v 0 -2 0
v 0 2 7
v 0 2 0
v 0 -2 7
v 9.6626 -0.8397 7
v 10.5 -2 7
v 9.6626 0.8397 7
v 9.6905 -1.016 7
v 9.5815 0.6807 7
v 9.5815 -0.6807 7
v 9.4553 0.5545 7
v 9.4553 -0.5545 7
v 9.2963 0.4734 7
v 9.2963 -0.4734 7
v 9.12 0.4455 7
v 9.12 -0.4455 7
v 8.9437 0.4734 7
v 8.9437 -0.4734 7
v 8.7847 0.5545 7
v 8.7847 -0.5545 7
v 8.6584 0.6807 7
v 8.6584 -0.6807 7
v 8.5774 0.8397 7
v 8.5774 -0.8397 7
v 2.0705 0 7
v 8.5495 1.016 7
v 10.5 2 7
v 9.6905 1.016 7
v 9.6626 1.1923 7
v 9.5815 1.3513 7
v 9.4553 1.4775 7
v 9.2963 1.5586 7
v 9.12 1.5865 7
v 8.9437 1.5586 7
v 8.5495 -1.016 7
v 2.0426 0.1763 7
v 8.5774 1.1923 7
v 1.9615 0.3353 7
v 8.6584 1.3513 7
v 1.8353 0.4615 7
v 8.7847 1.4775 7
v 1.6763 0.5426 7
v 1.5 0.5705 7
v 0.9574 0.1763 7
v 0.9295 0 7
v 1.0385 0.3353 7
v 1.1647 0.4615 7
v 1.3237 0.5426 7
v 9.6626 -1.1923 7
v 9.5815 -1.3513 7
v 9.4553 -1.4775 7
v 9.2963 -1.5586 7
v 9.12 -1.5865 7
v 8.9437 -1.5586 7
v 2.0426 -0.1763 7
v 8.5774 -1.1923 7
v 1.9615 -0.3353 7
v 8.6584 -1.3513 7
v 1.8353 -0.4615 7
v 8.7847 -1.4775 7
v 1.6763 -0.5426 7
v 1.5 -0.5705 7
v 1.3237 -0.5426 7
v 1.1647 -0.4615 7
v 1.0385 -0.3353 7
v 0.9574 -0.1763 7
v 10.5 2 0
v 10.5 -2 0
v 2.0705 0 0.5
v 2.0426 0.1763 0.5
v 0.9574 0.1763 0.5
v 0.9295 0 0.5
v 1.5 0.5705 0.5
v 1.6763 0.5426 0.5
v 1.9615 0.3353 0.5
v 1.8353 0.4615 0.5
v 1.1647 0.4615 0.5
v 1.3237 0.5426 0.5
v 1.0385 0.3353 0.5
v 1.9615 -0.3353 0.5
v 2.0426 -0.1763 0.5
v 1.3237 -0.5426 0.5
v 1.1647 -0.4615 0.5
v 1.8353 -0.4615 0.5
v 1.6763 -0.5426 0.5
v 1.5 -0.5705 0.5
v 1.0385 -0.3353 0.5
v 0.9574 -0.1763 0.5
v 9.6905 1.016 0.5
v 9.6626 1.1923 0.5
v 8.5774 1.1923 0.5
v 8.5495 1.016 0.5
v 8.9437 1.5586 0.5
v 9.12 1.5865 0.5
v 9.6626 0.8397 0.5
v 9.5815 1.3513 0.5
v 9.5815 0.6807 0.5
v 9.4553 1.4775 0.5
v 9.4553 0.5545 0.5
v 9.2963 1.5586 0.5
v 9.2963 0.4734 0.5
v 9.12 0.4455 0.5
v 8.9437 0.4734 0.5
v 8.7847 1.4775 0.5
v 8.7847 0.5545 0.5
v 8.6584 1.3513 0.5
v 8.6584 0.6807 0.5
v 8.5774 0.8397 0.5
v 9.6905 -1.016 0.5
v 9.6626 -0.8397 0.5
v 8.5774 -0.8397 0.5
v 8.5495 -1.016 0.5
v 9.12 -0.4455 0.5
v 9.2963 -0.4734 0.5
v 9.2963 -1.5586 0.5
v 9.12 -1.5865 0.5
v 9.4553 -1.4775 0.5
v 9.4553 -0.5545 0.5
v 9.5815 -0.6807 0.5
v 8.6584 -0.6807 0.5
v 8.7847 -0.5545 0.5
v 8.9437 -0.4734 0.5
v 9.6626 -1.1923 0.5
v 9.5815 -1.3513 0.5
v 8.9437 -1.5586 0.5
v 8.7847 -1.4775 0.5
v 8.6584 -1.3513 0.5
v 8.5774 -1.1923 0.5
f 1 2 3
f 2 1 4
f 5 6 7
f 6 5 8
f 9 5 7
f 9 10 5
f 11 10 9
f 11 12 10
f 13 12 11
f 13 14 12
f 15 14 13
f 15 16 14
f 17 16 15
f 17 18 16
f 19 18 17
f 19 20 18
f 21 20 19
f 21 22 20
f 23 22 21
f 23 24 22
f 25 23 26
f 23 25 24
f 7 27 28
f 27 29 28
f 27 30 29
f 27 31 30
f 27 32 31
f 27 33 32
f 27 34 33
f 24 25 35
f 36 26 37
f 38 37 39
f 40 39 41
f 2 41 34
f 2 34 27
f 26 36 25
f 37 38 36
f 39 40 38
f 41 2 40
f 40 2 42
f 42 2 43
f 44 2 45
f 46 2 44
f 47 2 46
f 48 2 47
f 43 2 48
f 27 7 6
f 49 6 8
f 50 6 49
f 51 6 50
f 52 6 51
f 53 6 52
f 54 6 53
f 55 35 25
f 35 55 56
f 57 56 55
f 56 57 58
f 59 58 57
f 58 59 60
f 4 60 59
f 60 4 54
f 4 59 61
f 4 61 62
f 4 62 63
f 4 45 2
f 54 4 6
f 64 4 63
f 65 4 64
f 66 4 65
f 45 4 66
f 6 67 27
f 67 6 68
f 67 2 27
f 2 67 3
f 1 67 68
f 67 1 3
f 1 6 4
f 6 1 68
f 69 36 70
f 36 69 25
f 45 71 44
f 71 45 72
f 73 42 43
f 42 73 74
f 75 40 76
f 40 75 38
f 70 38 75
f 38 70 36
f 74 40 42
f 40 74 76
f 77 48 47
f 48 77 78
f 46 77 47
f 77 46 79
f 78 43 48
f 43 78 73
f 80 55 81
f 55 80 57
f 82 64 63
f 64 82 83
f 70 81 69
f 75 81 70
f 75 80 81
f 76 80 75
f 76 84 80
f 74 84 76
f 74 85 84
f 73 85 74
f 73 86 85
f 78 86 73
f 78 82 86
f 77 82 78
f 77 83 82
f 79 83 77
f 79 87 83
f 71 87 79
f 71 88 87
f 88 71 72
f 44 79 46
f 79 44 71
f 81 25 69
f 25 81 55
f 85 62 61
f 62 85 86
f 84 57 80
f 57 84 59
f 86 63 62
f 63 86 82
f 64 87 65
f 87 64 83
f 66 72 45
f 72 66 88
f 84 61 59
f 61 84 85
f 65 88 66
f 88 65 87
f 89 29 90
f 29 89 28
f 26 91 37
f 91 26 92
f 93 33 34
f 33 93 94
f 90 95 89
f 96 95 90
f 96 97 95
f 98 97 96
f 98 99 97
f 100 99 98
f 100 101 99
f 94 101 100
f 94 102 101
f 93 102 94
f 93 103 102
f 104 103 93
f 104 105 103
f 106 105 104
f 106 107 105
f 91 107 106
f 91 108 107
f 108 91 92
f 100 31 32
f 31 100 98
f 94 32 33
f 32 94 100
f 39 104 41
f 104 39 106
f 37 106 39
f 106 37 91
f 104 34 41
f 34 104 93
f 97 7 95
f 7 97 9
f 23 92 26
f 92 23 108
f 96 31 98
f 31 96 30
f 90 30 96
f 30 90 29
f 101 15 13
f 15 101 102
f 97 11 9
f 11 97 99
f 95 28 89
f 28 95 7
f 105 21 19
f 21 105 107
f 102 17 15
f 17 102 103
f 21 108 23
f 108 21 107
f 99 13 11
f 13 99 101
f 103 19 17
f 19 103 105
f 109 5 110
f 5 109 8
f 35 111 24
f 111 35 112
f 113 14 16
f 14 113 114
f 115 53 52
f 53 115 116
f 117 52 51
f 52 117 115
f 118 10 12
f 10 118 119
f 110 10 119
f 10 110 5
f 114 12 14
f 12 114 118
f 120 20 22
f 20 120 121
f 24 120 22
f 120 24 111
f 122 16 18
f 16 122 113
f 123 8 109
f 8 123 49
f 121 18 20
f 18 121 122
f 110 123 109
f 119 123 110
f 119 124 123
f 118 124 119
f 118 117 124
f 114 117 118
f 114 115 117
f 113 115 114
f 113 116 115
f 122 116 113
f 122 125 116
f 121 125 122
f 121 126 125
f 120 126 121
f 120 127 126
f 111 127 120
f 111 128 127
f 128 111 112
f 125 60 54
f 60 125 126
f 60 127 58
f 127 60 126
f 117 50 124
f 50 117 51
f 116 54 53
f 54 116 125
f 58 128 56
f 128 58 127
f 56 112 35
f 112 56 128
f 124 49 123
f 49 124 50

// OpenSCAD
$fn=20;

isx = 1.5;       // Inital Spacing X

a_dia_tol = 0.15;  // Alignment Hole Tolerance
p_dia_tol = 0.01; // Probe Hole Tolerance

align_pin_dia = 0.991+a_dia_tol; // Alignment Pin Diamenter
probe_pin_dia = 0.787+p_dia_tol; // Probe Pin Diameter

/* Probe Clip Dimention */
boxx = 10.5;
boxy = 4;
boxh = 7;
his = 0.5; // Alignment/Probe hole offset height spacing

/* Probe Pair Spacing */
pps = 1.270;// mm probe pair spacing
pys = 0.635; // Probe spacing from x axis along y axis

/* Align Hole Calc */
ap1xs   = isx;        // Align pin 1 x spacing
ap2a3xs = ap1xs+pps*6; // Align pin 2&3 x spacing
ap2a3ys = 1.016;

/* Probe Shield */
// http://www.tag-connect.com/Materials/TC2030-IDC.pdf
pss = ap1xs + pps - (probe_pin_dia/2);
psx = pps*2 + probe_pin_dia;
psy = 1.016*2;

/* Probe Pair Space Calc */
pp1s = ap1xs + pps*1; // mm spacing 
pp2s = ap1xs + pps*2; // mm spacing 
pp3s = ap1xs + pps*3; // mm spacing 
pp4s = ap1xs + pps*4; // mm spacing 
pp5s = ap1xs + pps*5; // mm spacing 
probe_pit_y = pys*2 + probe_pin_dia; // 

/* loop */
loop_length = 50;
loop_height = 0.4;
loop_width = boxy;
loop_hole_w = 2.5; // hole width
loop_hole_l = 30;
loop_hole_s = 2;

loop_loy = loop_hole_w + 2*loop_hole_s;

/* 3D Model */
difference() {
translate([0  , -boxy/2  , 0])
        /* Main Plug */
        cube([boxx,boxy,boxh]);

/* Align Hole */
#translate([ap1xs   , 0         , his])
    cylinder(r=align_pin_dia/2, h=boxh);
#translate([ap2a3xs , +ap2a3ys  , his])
    cylinder(r=align_pin_dia/2, h=boxh);
#translate([ap2a3xs , -ap2a3ys  , his])
    cylinder(r=align_pin_dia/2, h=boxh);

/* Probe Pair 1 */
%translate([pp1s, +pys  , his])
    cylinder(r=probe_pin_dia/2, h=boxh);
%translate([pp1s, -pys  , his])
    cylinder(r=probe_pin_dia/2, h=boxh);
/* Probe Pair 2 */
%translate([pp2s, +pys  , his])
    cylinder(r=probe_pin_dia/2, h=boxh);
%translate([pp2s, -pys  , his])
    cylinder(r=probe_pin_dia/2, h=boxh);
/* Probe Pair 3 */
%translate([pp3s, +pys  , his])
    cylinder(r=probe_pin_dia/2, h=boxh);
%translate([pp3s, -pys  , his])
    cylinder(r=probe_pin_dia/2, h=boxh);
/* Probe Pair 4 */
%translate([pp4s, +pys  , his])
    cylinder(r=probe_pin_dia/2, h=boxh);
%translate([pp4s, -pys  , his])
    cylinder(r=probe_pin_dia/2, h=boxh);
/* Probe Pair 5 */
%translate([pp5s, +pys  , his])
    cylinder(r=probe_pin_dia/2, h=boxh);
%translate([pp5s, -pys  , his])
    cylinder(r=probe_pin_dia/2, h=boxh);
}
